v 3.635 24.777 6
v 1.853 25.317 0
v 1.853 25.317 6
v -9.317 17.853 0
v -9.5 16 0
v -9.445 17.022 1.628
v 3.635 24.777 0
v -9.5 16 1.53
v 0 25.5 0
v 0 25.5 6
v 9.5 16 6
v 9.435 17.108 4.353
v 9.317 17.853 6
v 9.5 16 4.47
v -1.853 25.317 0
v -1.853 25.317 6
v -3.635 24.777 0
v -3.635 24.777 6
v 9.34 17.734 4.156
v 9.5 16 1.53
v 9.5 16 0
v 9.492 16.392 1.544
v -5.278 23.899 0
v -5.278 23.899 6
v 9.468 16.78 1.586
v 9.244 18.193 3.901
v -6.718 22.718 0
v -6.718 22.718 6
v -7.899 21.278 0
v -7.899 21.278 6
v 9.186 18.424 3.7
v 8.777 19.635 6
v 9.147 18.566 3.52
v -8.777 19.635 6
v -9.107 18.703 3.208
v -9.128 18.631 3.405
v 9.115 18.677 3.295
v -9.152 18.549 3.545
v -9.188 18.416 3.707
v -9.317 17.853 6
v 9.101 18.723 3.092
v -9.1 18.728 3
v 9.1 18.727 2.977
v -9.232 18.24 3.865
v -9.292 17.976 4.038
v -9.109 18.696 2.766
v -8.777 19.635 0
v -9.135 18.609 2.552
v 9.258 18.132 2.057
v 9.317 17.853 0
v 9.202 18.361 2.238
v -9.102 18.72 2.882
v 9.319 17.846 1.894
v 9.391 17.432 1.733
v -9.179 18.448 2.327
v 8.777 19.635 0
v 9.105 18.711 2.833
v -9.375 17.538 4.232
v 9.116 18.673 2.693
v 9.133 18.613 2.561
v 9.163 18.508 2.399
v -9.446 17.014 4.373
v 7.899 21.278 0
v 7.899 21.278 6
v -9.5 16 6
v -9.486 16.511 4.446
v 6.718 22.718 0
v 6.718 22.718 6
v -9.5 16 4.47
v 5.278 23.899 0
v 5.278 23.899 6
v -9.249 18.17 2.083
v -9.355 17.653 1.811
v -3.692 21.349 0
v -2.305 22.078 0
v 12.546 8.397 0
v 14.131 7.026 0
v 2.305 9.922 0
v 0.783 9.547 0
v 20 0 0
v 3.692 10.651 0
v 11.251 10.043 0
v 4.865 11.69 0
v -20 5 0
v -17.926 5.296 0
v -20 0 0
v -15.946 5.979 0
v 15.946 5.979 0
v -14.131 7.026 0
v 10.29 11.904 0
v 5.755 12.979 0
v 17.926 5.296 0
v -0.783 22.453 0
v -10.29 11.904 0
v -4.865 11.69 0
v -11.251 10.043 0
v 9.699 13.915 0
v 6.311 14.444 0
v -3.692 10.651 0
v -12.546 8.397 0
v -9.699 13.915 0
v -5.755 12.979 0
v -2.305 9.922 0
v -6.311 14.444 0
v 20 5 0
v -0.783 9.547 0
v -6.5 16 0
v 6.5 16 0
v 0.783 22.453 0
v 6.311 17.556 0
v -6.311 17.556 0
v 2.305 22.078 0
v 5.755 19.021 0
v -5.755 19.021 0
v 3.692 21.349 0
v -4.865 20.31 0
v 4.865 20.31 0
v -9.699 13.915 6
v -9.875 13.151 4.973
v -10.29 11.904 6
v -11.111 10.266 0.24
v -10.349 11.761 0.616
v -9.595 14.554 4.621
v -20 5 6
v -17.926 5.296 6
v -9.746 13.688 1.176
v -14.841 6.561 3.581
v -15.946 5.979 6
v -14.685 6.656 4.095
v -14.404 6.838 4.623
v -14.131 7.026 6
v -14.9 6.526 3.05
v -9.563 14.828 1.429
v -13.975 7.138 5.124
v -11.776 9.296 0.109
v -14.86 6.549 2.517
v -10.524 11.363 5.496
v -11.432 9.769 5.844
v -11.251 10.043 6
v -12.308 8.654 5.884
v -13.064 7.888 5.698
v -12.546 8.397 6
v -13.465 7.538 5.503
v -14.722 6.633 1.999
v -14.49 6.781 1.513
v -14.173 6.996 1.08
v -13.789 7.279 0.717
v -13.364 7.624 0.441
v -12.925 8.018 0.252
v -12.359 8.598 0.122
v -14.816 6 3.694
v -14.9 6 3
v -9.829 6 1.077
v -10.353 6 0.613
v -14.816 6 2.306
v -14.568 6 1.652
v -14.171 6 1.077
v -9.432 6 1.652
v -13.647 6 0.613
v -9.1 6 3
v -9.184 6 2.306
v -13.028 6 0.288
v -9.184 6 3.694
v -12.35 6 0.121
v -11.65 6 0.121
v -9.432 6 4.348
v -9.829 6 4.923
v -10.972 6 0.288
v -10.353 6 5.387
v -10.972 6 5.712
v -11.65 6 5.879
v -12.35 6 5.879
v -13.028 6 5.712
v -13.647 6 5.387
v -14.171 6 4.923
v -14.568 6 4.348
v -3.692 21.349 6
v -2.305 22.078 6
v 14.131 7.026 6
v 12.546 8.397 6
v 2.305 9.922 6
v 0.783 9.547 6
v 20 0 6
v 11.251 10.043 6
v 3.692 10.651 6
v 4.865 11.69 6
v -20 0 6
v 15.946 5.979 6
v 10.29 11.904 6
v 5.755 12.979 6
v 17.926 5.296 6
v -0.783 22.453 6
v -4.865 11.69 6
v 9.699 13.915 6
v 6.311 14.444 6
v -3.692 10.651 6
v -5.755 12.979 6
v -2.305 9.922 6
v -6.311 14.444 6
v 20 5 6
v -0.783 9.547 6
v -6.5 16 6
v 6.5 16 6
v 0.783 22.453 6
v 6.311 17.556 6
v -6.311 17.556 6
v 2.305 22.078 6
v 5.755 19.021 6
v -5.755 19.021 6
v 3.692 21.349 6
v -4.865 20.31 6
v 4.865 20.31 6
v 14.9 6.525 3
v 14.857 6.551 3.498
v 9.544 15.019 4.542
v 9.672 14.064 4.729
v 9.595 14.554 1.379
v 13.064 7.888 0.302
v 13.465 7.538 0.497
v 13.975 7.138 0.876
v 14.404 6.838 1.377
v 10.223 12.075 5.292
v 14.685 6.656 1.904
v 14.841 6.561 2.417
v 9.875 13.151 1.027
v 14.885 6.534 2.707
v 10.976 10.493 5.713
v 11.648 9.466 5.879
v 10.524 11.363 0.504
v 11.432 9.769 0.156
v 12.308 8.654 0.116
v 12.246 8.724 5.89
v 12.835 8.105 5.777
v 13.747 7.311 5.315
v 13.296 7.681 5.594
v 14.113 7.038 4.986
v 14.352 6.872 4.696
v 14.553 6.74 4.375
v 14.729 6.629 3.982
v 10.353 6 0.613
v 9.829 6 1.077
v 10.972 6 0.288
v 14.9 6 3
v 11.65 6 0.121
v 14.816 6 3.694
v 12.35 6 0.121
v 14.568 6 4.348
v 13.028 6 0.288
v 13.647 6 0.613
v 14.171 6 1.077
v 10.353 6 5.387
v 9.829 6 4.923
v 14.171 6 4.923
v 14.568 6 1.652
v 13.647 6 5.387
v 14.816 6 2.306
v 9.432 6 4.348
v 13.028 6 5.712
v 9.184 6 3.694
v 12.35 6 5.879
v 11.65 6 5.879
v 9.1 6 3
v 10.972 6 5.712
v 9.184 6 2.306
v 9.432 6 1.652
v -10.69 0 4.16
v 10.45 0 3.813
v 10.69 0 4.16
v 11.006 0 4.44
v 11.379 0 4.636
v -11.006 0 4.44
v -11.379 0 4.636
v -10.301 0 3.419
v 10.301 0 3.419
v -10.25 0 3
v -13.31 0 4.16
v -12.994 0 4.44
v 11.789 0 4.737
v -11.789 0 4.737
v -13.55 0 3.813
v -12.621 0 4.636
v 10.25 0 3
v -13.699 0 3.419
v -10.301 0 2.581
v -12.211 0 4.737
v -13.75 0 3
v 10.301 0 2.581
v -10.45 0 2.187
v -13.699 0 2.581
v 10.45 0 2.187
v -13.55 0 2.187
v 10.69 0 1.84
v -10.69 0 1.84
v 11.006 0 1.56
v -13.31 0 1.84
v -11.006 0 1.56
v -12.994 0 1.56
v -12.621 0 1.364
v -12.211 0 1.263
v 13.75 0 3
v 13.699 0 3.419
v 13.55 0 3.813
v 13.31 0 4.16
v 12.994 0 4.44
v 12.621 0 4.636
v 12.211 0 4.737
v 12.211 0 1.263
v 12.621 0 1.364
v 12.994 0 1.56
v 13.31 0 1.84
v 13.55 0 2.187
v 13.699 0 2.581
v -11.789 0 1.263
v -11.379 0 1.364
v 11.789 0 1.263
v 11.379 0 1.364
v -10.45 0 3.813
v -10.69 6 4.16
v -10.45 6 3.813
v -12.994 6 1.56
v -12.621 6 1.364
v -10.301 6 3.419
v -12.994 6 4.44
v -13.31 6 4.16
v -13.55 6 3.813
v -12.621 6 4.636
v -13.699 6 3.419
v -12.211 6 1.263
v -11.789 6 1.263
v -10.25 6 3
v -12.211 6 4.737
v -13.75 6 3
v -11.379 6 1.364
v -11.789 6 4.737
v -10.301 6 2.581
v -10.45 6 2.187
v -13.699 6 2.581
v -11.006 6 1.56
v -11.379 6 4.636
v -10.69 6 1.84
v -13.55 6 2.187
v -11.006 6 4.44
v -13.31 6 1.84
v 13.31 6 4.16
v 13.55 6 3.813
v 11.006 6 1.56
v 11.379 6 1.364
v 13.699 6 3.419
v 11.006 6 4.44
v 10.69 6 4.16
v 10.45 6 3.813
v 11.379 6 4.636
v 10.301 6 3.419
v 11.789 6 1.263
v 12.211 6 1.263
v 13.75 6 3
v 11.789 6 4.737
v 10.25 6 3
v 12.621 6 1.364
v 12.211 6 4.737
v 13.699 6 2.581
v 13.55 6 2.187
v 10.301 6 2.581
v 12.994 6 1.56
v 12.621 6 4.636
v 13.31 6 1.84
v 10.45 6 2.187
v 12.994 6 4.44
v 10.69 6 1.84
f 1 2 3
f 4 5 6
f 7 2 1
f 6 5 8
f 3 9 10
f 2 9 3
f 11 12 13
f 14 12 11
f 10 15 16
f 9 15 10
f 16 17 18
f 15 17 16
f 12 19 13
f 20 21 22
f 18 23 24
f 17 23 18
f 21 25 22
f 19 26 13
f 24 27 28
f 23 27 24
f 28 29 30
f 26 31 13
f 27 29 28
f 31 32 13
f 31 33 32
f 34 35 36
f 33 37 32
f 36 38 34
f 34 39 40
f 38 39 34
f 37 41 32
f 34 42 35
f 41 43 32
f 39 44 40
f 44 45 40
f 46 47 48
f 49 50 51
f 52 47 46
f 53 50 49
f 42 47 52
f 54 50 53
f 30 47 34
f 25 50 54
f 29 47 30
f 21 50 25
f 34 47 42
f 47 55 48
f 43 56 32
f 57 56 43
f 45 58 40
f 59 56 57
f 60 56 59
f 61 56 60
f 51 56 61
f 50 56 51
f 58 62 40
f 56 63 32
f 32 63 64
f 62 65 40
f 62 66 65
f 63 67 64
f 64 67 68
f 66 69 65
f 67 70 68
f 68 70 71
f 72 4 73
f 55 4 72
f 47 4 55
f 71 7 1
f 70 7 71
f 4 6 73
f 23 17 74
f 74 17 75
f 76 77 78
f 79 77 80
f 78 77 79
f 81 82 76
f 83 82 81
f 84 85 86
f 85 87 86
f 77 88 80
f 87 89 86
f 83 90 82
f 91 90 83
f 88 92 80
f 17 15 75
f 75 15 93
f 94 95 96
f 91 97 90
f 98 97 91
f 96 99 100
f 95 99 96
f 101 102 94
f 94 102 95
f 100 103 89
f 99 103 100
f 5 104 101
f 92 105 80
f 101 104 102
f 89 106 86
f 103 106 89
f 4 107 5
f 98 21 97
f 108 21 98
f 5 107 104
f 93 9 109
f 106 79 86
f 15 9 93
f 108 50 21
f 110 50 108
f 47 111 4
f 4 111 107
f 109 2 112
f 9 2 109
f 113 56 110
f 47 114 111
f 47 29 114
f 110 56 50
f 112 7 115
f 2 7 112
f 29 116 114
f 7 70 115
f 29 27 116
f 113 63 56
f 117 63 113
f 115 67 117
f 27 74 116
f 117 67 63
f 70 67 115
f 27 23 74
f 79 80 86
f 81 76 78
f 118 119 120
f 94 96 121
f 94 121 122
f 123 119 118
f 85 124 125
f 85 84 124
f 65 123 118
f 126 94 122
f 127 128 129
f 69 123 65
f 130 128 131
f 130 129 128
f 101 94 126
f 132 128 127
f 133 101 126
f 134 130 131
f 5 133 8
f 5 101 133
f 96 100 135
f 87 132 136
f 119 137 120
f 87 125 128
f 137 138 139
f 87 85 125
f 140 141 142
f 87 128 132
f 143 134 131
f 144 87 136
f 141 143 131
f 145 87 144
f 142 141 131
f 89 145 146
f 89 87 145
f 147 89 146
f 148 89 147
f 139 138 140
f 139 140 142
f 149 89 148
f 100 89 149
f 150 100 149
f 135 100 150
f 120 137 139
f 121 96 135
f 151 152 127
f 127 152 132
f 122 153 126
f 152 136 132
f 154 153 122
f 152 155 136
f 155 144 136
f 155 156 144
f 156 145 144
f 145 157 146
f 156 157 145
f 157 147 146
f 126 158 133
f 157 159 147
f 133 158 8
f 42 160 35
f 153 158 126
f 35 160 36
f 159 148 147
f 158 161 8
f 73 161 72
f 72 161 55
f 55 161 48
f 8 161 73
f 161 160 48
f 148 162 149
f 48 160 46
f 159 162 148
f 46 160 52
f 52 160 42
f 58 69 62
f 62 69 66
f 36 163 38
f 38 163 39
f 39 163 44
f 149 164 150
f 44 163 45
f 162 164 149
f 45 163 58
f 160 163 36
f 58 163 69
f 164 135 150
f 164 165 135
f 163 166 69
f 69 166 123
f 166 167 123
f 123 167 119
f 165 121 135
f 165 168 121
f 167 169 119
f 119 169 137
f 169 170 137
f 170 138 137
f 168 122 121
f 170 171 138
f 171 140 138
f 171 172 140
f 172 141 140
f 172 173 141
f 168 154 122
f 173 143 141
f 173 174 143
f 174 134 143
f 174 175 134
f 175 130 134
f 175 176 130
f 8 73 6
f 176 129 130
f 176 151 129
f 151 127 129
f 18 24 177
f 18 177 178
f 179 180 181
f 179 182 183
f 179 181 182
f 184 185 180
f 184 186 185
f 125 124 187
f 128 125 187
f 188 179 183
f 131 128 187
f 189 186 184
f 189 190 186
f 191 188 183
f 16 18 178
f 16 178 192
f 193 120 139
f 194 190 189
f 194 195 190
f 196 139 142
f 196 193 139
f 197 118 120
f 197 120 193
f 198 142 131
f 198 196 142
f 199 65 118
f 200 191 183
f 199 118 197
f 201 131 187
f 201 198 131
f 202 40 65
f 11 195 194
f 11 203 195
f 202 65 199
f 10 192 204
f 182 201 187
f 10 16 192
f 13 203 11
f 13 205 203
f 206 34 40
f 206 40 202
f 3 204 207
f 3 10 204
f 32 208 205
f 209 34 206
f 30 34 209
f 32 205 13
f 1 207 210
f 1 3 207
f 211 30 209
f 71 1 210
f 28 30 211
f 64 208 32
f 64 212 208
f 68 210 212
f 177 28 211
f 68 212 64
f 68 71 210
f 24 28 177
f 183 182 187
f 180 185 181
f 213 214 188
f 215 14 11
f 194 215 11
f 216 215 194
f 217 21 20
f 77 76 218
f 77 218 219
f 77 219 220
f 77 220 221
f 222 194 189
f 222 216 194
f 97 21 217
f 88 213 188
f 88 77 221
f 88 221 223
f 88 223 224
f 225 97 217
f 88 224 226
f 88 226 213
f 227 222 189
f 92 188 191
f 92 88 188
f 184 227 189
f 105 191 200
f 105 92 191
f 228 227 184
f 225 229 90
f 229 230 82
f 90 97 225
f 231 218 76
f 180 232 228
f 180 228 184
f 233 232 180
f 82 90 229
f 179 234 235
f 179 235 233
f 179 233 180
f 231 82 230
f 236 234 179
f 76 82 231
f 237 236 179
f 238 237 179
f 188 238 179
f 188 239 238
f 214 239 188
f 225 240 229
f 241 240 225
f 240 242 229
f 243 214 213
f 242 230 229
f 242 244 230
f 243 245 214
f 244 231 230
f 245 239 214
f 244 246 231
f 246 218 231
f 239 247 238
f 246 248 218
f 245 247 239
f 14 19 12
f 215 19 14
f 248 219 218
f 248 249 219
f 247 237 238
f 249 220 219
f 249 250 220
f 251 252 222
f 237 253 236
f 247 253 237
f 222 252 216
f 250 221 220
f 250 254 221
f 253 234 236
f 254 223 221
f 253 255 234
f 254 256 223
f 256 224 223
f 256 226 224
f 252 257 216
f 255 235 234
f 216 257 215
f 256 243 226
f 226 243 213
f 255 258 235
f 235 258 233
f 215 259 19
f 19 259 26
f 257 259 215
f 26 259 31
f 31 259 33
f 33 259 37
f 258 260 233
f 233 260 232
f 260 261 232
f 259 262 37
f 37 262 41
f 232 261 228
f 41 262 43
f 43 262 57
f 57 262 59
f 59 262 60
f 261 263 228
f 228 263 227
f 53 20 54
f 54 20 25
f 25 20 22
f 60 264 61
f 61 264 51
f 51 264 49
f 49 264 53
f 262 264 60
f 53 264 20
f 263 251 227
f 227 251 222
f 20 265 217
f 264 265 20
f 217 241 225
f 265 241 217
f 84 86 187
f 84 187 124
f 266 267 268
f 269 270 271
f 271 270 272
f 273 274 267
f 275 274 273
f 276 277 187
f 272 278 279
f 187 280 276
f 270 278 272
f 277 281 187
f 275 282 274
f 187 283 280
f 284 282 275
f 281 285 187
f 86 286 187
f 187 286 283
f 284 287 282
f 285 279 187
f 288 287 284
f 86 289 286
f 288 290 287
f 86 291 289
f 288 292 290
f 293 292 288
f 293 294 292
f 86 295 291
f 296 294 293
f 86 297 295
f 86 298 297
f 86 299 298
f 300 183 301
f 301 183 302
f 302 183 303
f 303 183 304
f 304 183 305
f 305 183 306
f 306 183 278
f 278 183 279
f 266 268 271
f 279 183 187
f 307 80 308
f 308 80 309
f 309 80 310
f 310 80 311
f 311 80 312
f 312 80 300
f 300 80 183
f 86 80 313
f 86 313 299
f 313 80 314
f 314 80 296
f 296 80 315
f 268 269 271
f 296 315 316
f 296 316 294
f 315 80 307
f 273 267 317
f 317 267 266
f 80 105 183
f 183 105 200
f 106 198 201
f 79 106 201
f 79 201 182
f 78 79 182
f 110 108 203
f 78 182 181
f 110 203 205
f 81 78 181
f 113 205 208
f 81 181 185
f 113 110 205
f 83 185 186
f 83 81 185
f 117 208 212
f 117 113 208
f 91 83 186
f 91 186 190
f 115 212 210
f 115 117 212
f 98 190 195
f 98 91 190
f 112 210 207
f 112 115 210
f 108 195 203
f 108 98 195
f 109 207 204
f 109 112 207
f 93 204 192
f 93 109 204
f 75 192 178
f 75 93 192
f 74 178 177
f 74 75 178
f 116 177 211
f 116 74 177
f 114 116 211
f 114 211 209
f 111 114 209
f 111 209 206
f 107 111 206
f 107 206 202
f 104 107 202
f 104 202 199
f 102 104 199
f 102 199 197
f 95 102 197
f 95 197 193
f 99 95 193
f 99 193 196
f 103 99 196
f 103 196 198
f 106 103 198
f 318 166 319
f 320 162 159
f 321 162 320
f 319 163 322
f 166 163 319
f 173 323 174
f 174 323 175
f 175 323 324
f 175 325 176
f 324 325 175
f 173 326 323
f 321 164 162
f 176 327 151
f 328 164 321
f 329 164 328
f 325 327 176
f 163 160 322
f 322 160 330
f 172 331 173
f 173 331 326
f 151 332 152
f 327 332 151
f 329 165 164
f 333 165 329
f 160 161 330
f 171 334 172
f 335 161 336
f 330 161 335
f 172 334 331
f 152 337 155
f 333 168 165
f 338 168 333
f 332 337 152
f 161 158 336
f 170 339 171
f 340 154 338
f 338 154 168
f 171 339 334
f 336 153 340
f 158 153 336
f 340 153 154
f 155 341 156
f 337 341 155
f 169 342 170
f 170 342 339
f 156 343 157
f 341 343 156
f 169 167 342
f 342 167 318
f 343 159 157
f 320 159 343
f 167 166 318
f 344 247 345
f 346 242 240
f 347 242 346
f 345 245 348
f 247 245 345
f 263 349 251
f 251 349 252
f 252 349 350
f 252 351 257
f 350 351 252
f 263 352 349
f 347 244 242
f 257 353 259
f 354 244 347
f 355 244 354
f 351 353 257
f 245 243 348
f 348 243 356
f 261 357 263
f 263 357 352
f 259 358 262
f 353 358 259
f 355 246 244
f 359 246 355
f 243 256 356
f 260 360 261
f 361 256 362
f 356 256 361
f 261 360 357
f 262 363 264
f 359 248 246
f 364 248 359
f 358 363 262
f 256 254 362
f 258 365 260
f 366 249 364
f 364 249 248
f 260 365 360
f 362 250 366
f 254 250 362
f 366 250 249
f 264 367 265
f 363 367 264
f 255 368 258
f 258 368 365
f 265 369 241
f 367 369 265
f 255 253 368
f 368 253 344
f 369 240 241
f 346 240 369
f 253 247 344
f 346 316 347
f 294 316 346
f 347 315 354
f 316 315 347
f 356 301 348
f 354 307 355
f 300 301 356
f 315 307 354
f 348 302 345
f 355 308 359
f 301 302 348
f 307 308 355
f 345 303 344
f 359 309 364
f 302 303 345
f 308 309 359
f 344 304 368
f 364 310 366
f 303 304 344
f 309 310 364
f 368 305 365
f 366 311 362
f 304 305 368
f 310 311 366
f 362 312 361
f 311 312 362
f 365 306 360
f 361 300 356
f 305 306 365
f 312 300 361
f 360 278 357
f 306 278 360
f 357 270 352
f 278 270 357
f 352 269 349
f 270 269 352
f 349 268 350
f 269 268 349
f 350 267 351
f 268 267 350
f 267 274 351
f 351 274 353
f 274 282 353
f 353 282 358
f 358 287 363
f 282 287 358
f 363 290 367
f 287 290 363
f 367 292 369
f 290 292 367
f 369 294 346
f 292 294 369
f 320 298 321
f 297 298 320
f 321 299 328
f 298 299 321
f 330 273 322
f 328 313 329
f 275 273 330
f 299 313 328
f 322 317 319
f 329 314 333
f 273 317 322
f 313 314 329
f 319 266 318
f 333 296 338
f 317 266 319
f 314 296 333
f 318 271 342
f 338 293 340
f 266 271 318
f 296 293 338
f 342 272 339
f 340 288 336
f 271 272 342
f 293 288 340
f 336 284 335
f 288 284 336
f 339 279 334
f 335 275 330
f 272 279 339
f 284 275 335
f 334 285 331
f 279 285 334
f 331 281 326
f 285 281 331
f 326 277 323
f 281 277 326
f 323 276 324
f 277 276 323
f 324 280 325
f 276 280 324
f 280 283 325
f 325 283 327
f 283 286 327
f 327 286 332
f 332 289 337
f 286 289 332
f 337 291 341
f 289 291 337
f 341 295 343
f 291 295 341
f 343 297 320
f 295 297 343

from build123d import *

# Parameters (mm, degrees)
SKETCH_R        = 6.5
PAD_DEPTH       = 6
SKETCH001_R     = 1.75
POCKET_DEPTH    = 25.501
SKETCH002_R     = 2.9
POCKET001_DEPTH = 19.501


with BuildPart() as part:
    # Sketch → Pad (new body)
    with BuildSketch(Plane.XY):
        with BuildLine():
            ThreePointArc((9.5, 16), (0, 25.5), (-9.5, 16))
            ThreePointArc((-20, 5), (-12.546382, 8.396547), (-9.5, 16))
            Line((-20, 0), (-20, 5))
            Line((-20, 0), (20, 0))
            Line((20, 0), (20, 5))
            ThreePointArc((9.5, 16), (12.546382, 8.396547), (20, 5))
        make_face()
        with Locations((0, 16)):
            Circle(SKETCH_R, mode=Mode.SUBTRACT)
    extrude(amount=PAD_DEPTH)

    # Sketch001 (on Face4 of Pad) → Pocket (cut, through all)
    with BuildSketch(Plane.XZ):
        with Locations((-12, 3)):
            Circle(SKETCH001_R)
        with Locations((12, 3)):
            Circle(SKETCH001_R)
    extrude(amount=-POCKET_DEPTH, mode=Mode.SUBTRACT)

    # Sketch002 (on Face4 of Pad) → Pocket001 (cut, through all)
    with BuildSketch(Plane.XZ.offset(-6)):
        with Locations((-12, 3)):
            Circle(SKETCH002_R)
        with Locations((12, 3)):
            Circle(SKETCH002_R)
    extrude(amount=-POCKET001_DEPTH, mode=Mode.SUBTRACT)


solid = part.part
